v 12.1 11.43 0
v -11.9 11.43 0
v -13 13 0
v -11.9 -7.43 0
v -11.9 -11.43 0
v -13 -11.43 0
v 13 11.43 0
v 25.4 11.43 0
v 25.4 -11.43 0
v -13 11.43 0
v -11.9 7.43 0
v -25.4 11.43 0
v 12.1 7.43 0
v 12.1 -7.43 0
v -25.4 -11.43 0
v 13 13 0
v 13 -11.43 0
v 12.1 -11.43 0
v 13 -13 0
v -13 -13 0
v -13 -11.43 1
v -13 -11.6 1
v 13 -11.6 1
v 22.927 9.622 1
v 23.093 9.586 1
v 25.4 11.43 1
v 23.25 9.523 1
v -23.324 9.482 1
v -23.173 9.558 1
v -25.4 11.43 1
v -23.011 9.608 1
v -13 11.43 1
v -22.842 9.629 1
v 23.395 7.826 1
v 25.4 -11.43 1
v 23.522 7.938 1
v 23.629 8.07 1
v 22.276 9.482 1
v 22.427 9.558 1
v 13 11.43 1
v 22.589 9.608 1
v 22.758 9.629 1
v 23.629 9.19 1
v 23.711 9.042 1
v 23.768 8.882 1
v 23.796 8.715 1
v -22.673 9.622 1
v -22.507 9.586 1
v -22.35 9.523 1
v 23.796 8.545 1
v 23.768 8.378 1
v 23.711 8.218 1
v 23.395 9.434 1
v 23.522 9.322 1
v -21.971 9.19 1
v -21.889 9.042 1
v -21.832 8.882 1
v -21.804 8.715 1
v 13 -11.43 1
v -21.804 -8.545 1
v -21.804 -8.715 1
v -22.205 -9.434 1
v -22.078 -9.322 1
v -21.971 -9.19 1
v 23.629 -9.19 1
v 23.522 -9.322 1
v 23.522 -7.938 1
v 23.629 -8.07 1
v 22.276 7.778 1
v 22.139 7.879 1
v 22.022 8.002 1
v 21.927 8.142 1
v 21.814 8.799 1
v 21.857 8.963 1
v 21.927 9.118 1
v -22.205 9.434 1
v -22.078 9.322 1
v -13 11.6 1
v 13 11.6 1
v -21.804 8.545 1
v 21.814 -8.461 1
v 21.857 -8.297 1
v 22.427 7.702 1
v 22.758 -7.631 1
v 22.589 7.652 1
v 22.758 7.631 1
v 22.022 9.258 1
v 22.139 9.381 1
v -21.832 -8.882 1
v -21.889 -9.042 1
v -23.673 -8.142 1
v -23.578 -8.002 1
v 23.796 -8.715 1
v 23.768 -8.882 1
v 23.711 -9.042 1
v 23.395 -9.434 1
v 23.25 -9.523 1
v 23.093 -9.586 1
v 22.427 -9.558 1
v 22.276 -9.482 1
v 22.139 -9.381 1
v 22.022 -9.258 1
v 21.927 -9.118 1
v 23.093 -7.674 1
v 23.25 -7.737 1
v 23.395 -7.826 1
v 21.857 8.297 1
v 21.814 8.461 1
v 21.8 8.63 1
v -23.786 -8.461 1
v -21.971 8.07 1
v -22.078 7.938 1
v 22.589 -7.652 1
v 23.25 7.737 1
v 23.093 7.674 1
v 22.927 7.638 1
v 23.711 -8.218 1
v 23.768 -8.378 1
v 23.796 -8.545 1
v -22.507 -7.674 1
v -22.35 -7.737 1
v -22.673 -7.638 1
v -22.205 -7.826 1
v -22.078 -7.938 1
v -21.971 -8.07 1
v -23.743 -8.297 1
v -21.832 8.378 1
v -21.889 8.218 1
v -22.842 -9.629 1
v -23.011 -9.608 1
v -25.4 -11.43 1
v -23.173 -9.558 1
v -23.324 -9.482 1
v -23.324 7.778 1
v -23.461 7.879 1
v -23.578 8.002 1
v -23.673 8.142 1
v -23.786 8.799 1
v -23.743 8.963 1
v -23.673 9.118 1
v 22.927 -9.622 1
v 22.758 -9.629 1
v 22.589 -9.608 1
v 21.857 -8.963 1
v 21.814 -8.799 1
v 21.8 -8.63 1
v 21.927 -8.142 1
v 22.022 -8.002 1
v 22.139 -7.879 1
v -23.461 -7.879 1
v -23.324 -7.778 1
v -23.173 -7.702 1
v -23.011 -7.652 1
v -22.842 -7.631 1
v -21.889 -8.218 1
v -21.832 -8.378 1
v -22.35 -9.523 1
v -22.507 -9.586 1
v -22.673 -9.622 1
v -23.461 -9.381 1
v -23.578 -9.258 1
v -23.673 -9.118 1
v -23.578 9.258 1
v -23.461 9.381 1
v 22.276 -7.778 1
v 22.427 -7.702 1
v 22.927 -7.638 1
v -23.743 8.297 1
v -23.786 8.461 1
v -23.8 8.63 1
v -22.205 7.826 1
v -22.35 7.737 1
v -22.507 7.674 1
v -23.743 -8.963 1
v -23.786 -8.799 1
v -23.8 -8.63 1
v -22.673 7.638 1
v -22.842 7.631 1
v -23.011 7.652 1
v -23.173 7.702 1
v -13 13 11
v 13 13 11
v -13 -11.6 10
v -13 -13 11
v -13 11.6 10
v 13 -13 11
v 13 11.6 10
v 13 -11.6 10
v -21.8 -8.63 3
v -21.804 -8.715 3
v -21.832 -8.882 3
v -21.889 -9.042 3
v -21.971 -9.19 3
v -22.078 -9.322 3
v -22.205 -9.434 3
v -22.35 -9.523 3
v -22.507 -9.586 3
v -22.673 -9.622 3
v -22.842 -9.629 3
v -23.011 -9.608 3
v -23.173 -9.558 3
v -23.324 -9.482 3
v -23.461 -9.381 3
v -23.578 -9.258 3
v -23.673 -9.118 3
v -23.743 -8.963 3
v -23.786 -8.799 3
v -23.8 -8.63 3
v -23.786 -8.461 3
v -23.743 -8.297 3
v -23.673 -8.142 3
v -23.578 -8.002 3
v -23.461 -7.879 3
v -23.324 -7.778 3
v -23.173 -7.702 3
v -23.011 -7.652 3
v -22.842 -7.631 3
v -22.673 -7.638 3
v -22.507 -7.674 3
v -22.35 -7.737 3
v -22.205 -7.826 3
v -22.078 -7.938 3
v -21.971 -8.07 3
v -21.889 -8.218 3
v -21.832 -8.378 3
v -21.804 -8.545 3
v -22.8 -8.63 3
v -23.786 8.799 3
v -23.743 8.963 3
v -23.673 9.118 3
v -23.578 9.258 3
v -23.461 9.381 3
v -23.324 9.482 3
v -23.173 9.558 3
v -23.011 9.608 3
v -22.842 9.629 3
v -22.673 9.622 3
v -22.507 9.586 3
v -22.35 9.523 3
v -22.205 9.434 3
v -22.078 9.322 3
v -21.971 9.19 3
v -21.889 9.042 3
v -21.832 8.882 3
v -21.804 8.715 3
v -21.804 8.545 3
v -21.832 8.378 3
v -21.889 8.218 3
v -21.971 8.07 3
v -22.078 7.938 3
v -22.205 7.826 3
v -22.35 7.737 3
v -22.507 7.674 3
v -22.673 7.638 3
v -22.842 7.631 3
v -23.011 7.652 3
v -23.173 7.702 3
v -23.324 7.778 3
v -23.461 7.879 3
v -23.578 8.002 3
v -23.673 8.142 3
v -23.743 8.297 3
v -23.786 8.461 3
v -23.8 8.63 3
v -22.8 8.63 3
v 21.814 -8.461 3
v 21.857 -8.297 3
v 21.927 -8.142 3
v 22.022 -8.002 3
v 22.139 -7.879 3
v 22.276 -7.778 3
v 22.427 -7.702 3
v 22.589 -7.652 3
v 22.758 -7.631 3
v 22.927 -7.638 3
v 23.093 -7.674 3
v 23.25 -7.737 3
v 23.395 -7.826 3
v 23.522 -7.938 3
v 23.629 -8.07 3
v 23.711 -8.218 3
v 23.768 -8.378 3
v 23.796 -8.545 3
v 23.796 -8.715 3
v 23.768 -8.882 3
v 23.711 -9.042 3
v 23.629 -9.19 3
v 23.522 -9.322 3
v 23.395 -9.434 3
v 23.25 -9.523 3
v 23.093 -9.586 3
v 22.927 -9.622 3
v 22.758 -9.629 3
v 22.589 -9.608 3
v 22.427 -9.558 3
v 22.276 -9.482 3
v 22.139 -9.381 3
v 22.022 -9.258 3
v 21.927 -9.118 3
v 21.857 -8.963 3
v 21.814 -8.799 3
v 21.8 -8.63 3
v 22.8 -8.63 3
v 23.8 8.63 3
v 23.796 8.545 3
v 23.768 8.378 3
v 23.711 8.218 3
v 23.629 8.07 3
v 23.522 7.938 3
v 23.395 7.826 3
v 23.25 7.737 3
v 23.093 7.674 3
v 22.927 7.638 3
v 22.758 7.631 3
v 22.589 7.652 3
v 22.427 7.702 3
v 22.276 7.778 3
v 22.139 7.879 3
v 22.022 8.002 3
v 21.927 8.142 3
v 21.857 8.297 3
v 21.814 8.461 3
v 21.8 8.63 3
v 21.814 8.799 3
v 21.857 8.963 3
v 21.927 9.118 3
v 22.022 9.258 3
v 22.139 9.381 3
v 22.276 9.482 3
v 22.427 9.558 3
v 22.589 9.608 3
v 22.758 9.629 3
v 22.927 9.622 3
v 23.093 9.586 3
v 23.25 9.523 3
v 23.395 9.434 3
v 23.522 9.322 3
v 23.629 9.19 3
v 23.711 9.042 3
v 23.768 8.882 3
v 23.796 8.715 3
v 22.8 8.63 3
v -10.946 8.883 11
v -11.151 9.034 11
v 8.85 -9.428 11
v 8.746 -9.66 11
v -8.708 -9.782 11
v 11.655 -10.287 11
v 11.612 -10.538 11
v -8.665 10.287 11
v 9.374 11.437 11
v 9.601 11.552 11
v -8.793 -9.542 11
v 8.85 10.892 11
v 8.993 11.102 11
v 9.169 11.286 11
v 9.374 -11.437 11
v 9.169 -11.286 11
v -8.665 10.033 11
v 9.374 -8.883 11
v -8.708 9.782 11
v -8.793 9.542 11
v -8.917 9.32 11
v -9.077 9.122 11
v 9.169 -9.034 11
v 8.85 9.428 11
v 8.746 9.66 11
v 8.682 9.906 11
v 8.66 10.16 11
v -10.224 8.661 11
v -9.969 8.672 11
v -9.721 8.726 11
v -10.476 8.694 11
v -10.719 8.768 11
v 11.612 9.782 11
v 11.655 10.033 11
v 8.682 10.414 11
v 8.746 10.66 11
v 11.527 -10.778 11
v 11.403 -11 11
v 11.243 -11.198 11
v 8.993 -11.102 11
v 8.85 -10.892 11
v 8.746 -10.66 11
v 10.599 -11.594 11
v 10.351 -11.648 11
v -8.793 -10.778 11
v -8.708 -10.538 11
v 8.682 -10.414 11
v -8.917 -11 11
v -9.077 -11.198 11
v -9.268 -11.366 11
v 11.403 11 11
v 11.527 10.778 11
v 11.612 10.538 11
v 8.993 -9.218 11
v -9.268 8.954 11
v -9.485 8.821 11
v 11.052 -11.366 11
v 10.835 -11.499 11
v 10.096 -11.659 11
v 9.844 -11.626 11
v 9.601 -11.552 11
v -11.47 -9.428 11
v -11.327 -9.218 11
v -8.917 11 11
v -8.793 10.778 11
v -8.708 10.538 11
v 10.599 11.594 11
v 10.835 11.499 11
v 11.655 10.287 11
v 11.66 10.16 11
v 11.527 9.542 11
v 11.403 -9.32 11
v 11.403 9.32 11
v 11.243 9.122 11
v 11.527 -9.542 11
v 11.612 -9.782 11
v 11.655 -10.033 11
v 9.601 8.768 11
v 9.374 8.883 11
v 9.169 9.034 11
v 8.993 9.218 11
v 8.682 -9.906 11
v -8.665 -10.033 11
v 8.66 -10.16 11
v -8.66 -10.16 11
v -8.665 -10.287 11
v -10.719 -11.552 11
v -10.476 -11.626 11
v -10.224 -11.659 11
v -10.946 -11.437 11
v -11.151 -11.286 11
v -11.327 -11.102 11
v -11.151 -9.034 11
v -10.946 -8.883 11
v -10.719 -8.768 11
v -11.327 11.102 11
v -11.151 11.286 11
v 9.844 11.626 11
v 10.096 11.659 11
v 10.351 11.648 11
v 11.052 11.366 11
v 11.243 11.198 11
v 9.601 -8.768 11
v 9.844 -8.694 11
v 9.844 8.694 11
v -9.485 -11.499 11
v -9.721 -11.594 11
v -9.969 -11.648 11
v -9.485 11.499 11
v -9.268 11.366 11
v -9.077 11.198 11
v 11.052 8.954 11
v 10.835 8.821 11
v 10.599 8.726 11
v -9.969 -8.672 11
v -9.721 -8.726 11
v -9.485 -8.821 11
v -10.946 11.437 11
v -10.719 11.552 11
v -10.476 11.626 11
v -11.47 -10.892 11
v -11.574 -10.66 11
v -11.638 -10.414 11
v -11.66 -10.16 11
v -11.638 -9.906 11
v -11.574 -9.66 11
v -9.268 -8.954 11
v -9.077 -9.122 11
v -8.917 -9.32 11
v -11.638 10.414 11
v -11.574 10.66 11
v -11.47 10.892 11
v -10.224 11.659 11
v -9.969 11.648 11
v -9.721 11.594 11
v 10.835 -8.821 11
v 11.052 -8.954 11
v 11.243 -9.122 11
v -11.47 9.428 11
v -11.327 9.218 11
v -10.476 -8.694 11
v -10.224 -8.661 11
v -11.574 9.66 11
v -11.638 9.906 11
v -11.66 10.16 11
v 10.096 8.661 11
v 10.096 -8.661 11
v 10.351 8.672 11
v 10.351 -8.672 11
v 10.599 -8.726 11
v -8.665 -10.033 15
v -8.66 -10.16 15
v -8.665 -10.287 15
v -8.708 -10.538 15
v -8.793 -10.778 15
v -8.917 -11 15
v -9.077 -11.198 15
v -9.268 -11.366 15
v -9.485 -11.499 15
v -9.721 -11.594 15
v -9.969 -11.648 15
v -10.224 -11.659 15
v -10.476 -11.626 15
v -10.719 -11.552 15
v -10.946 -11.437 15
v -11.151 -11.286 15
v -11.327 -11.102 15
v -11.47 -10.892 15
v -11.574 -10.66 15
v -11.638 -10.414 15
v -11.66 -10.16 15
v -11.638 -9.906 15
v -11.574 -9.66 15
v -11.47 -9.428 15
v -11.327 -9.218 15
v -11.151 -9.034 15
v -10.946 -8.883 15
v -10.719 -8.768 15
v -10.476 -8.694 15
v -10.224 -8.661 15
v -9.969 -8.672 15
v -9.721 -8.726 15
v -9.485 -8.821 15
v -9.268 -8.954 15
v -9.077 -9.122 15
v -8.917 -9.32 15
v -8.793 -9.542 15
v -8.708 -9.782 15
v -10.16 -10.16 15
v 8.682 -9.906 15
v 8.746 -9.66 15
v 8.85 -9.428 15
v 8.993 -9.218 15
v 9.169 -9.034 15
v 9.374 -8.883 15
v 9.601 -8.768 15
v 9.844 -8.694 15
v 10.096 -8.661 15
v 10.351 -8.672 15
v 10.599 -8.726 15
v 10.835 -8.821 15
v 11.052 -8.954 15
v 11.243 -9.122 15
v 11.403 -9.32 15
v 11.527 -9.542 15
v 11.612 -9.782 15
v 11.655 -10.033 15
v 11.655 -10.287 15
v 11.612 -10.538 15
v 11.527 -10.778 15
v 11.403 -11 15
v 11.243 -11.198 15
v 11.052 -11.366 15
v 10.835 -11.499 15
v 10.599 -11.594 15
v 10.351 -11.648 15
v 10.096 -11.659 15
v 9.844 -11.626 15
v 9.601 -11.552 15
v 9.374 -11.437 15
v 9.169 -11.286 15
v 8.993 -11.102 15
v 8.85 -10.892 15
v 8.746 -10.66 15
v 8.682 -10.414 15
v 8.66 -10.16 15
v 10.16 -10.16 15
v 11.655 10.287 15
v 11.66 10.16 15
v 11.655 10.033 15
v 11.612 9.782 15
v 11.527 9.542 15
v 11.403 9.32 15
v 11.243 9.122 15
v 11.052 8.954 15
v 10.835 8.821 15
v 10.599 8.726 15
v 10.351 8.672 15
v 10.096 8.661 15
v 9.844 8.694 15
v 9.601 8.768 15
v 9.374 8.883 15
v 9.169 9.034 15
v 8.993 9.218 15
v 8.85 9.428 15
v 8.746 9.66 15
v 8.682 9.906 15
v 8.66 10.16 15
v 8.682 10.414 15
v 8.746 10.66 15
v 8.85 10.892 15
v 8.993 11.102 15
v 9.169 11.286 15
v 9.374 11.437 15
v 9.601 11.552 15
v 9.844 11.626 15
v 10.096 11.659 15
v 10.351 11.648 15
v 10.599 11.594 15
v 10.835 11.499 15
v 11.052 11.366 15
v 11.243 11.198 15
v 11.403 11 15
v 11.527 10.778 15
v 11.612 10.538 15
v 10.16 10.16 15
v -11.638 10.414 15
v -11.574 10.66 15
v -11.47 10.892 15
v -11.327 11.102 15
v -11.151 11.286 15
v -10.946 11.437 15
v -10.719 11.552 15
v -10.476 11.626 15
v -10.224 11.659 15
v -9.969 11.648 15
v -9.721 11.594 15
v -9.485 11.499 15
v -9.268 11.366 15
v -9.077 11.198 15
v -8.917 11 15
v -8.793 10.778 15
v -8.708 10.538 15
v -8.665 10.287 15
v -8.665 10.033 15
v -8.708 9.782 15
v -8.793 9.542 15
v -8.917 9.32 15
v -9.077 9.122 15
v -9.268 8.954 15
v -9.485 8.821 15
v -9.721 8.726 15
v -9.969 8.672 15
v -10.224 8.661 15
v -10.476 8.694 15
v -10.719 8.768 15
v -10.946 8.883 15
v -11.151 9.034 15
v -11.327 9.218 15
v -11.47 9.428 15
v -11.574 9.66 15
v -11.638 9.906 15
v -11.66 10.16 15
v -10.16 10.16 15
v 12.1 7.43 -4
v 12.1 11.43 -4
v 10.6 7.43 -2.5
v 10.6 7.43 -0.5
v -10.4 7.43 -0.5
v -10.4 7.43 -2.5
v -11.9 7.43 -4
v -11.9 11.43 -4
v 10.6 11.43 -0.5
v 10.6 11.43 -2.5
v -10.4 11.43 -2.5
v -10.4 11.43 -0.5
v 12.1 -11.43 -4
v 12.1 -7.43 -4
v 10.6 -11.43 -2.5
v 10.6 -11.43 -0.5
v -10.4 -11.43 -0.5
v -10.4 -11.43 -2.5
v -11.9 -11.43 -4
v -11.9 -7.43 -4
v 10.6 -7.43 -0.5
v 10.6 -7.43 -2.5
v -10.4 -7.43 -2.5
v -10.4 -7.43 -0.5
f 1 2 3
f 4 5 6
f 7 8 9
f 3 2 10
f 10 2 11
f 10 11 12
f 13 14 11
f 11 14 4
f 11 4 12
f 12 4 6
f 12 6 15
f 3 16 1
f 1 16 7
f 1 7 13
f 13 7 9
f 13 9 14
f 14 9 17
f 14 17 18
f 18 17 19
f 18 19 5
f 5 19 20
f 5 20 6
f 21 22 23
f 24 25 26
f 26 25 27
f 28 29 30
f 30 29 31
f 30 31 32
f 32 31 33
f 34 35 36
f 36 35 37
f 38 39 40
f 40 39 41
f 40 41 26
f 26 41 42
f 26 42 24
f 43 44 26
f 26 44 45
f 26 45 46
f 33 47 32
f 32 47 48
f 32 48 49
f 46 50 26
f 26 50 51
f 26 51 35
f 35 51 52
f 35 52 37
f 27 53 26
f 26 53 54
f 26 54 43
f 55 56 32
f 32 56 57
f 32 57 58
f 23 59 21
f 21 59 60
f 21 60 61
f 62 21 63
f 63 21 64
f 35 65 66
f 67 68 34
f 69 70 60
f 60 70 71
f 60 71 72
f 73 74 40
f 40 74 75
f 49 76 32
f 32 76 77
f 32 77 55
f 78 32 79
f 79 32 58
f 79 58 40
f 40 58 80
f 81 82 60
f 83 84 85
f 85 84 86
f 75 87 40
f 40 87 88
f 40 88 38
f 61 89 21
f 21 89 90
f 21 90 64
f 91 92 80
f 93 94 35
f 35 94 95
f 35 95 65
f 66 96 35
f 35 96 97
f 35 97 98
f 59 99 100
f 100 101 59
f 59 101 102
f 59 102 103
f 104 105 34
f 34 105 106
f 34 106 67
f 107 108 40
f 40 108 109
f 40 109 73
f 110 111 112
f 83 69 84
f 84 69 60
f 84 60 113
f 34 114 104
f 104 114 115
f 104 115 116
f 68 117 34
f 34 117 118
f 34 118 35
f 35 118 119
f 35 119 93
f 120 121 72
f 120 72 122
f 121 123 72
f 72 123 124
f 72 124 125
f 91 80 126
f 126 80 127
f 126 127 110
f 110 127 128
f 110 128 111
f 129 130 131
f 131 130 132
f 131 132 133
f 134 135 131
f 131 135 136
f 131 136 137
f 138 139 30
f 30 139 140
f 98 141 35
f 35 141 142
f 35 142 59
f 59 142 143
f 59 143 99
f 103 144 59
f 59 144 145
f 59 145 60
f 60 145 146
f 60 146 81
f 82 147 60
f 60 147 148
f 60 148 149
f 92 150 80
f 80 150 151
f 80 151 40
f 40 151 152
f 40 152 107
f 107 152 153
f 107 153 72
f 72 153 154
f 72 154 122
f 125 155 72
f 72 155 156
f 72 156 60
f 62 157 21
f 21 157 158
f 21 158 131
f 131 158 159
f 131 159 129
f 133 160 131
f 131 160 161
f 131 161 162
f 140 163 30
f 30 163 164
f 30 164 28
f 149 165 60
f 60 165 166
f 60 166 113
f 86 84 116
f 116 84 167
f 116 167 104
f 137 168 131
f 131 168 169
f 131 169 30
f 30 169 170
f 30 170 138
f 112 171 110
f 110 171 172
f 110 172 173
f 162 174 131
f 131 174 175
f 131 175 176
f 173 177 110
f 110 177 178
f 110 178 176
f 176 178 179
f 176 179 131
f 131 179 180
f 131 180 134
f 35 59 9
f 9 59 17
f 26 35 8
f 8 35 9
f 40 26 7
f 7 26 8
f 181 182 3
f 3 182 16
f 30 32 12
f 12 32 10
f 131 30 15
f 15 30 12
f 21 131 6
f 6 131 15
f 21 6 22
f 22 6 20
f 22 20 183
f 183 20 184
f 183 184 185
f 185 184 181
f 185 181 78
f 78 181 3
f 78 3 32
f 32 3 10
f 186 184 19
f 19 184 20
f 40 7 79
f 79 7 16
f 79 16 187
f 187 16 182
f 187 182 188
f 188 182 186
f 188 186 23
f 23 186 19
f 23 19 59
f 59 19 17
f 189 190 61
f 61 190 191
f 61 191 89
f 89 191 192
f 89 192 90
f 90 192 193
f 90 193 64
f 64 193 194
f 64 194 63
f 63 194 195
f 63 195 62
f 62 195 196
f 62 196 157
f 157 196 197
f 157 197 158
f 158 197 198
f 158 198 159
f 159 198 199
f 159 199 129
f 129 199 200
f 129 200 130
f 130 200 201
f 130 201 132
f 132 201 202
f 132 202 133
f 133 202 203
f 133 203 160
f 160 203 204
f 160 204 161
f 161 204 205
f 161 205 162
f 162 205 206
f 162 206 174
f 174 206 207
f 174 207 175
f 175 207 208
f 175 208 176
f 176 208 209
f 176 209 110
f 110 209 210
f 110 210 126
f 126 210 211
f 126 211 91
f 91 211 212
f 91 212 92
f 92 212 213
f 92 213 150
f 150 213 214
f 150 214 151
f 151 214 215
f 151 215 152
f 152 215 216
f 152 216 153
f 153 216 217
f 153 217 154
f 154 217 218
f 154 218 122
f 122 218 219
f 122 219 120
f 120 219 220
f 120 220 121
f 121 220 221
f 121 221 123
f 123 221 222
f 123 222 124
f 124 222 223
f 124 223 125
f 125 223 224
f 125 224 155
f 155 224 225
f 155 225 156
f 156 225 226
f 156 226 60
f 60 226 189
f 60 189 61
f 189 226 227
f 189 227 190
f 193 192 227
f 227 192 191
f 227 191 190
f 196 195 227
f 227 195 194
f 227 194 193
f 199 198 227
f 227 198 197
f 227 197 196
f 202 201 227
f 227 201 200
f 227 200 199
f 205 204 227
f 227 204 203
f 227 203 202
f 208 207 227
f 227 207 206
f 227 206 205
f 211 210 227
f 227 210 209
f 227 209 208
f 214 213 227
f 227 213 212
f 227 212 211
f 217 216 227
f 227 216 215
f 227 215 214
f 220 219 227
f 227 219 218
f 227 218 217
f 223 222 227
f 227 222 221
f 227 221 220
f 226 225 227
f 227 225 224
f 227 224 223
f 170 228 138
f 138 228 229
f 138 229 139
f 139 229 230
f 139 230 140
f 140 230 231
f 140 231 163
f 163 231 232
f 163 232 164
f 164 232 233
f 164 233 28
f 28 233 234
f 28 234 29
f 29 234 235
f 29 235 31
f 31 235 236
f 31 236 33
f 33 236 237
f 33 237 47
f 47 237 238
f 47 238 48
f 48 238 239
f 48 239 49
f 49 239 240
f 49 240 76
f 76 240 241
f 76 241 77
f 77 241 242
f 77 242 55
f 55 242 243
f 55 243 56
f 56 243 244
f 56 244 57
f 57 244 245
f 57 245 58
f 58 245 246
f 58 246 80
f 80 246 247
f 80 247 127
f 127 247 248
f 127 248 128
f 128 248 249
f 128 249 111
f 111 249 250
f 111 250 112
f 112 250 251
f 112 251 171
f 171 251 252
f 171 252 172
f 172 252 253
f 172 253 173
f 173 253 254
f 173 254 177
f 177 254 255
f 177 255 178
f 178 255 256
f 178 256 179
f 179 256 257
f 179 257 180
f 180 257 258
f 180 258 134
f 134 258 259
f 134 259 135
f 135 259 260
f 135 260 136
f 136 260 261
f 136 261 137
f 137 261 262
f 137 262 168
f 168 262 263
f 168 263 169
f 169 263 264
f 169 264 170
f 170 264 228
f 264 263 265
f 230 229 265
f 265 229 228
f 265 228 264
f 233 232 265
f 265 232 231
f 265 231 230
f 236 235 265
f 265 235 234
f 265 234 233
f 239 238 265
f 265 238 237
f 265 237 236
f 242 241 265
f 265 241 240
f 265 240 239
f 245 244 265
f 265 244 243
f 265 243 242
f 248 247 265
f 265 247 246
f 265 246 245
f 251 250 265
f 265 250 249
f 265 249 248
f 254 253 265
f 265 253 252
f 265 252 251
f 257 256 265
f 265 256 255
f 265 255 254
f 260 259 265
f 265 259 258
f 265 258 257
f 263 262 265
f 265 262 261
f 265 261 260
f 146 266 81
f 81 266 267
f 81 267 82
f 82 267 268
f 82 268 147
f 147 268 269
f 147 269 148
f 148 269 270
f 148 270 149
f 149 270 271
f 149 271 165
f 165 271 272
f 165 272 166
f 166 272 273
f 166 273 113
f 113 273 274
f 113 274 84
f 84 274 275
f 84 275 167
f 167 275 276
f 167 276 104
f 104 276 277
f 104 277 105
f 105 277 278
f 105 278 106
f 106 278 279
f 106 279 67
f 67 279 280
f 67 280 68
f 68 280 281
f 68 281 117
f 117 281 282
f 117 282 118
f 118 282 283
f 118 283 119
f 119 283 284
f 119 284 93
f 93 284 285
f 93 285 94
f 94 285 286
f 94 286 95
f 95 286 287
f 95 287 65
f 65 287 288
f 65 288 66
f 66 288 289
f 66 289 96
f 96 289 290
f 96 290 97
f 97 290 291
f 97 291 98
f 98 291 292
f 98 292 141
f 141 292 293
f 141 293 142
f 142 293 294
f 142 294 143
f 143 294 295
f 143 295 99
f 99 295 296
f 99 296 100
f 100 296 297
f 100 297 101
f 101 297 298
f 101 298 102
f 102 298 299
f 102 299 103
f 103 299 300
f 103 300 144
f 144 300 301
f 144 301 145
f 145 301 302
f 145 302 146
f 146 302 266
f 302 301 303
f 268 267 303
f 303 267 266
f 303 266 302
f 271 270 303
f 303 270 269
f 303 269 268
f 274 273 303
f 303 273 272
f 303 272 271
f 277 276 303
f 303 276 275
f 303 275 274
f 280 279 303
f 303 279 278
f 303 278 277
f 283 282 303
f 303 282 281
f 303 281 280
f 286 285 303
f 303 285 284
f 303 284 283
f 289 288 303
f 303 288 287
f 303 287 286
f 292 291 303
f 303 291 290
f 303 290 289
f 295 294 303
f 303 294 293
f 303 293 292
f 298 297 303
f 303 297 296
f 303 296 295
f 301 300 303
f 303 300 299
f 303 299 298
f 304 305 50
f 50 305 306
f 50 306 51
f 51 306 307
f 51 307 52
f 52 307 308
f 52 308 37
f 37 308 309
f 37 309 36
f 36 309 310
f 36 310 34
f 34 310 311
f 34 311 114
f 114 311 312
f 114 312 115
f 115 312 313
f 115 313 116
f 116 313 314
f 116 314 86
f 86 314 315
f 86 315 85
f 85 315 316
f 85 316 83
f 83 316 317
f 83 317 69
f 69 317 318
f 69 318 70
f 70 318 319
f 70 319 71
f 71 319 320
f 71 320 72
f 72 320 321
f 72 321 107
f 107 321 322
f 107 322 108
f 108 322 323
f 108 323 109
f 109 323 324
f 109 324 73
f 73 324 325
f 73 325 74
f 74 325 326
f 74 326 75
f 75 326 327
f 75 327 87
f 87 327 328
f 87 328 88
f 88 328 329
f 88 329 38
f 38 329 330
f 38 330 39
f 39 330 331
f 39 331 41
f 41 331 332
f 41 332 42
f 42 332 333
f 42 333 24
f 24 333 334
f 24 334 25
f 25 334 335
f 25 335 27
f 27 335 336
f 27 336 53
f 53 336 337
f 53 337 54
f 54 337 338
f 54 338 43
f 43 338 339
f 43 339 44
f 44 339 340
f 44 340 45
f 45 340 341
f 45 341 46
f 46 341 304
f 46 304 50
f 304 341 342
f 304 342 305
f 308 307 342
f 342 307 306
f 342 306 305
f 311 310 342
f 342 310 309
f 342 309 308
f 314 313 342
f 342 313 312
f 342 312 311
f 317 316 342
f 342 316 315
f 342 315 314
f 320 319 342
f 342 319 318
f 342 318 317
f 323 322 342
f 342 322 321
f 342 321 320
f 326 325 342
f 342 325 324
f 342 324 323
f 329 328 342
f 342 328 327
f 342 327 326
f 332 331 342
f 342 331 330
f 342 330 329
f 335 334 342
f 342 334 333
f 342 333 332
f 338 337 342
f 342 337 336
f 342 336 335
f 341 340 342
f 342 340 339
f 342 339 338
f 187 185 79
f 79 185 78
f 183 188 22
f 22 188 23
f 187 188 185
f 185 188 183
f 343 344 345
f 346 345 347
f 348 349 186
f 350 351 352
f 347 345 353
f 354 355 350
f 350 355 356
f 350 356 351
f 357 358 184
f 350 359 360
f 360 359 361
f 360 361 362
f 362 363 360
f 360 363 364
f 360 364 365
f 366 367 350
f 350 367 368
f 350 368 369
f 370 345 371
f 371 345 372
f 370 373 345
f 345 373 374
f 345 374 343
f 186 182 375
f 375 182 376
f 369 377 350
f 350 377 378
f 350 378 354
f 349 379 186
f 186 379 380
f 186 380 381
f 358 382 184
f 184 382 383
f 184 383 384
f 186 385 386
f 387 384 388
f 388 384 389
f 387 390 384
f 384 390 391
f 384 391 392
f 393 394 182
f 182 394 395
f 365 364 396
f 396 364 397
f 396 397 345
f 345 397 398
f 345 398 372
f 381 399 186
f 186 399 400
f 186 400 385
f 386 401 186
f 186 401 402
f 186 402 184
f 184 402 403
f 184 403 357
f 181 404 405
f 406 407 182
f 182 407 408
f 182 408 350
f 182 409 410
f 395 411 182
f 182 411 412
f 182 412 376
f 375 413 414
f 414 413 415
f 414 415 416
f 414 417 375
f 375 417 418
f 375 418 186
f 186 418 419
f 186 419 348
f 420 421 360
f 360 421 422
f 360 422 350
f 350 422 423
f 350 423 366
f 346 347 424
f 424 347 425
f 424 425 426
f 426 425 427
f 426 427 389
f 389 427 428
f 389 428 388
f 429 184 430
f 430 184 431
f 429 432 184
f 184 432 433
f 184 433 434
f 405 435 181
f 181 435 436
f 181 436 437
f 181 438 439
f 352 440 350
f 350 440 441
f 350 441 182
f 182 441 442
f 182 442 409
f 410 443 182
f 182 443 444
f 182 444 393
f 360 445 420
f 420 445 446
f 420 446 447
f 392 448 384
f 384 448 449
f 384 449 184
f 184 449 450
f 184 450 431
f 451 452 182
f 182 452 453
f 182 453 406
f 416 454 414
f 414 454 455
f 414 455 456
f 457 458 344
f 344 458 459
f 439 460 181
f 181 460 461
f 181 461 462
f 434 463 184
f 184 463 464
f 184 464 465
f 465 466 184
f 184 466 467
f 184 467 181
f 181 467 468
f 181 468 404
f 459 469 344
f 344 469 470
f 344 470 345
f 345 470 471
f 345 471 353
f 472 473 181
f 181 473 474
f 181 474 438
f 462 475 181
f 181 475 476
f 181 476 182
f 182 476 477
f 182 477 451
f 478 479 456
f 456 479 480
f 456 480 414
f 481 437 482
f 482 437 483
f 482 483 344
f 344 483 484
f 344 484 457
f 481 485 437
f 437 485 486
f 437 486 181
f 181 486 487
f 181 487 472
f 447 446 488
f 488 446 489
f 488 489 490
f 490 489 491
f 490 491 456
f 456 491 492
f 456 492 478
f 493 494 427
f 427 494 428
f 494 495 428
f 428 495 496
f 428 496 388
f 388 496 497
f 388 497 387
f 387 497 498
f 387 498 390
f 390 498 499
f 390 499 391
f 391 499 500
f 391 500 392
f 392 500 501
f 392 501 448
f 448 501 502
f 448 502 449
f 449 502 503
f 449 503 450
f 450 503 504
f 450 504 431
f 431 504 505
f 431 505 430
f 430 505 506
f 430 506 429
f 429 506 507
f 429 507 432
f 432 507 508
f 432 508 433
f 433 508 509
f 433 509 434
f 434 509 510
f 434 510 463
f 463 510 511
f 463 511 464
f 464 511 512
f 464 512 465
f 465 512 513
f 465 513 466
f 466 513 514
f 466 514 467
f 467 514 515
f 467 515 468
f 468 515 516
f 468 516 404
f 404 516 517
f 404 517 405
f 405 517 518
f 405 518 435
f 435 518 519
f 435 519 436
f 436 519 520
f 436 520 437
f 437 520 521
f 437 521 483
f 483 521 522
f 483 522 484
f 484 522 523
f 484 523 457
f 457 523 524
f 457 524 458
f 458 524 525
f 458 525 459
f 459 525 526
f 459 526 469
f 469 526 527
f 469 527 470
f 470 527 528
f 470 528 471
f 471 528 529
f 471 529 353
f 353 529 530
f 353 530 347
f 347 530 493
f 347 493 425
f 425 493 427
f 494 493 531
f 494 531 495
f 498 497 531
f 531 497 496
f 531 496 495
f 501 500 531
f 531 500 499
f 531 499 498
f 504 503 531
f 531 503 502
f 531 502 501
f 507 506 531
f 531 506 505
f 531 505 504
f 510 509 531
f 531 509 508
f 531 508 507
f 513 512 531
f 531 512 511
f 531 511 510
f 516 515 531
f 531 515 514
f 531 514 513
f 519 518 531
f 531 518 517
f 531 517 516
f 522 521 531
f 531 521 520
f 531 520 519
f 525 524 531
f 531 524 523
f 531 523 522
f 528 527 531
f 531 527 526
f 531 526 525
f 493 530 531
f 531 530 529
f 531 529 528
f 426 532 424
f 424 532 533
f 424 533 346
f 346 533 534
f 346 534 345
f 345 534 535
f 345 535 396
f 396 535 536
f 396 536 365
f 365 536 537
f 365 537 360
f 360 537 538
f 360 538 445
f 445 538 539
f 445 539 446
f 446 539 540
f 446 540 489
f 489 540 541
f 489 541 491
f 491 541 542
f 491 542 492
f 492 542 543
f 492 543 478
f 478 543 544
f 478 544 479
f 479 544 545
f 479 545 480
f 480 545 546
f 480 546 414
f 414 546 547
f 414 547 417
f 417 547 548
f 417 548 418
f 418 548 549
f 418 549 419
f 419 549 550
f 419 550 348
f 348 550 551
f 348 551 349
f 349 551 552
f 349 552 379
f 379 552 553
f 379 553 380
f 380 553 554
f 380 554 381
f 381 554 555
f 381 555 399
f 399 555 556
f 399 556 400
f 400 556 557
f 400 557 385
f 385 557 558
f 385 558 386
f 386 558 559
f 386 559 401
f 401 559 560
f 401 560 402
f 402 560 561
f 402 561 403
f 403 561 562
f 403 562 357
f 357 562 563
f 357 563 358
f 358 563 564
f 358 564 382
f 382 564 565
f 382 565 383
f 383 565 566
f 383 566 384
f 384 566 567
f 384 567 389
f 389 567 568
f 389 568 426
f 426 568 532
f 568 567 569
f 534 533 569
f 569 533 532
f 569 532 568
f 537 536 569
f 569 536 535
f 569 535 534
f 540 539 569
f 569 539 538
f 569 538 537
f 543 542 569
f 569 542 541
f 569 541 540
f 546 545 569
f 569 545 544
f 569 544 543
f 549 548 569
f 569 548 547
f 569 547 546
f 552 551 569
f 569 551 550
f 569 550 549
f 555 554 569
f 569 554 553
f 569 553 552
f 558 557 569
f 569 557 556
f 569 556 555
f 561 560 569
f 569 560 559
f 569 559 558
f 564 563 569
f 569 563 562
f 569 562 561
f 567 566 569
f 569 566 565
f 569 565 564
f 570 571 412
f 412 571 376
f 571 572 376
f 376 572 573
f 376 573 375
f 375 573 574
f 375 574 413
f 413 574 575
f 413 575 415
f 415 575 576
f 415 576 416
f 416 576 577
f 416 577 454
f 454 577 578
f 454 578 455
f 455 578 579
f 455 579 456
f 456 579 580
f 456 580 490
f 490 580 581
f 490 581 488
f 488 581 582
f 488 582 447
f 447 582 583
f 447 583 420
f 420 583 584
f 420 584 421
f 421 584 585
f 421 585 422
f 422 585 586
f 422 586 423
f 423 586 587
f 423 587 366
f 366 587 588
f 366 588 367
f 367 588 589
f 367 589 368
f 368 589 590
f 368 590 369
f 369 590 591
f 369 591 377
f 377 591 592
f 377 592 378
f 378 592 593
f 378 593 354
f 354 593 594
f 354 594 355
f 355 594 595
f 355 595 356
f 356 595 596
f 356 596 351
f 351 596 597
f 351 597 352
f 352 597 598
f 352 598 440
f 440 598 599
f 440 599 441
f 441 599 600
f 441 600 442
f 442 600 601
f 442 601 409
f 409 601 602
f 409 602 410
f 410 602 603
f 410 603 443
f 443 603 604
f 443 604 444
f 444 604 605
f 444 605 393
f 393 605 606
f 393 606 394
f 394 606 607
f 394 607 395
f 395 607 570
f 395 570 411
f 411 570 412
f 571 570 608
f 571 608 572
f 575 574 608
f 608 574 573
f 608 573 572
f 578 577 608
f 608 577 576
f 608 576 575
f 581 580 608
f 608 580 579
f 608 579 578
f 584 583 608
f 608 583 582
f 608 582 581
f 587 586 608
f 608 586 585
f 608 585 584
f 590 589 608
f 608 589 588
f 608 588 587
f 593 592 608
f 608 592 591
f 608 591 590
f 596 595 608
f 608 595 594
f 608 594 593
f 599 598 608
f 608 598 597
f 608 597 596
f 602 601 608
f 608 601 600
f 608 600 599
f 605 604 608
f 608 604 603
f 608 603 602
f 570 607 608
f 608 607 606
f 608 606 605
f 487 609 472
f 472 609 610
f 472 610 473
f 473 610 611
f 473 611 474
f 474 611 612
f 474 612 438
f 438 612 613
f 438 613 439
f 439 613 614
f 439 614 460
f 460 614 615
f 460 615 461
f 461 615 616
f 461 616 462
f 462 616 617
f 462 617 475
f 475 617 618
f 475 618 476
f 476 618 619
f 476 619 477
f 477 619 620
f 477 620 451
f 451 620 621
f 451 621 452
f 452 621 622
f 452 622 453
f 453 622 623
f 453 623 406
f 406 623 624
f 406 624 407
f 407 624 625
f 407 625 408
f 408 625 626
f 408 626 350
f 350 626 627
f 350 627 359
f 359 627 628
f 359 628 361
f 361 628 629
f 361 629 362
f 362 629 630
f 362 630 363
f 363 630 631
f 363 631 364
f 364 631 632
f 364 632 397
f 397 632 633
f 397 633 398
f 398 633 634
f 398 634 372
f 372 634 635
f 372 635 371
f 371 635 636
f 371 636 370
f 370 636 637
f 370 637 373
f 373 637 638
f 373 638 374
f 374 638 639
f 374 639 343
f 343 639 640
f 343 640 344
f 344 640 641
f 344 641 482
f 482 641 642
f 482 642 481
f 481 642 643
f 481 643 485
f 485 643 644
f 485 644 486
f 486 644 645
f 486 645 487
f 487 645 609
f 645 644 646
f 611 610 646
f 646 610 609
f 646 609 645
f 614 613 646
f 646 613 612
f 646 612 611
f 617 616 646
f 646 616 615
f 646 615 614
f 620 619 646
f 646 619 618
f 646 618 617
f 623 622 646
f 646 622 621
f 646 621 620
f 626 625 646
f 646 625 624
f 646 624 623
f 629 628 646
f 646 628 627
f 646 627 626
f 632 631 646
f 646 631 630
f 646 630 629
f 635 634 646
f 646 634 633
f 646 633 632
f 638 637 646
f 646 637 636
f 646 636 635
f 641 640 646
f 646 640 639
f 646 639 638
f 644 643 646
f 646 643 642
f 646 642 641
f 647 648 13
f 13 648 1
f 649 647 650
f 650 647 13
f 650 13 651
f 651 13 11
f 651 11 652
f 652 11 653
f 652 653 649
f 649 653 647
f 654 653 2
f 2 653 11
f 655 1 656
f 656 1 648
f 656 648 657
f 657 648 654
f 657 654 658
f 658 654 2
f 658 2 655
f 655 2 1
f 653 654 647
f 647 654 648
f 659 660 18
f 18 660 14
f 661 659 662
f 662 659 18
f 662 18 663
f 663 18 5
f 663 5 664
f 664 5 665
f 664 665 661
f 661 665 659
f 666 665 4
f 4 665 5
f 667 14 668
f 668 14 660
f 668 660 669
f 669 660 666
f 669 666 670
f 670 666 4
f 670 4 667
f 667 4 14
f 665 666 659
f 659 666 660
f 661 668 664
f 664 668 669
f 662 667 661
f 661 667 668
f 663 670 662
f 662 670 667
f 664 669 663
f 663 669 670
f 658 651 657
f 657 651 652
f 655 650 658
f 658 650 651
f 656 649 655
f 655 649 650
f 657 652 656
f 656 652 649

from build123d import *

# Parameters (mm, degrees)
EXTRUDE_1_DEPTH     = 1
SKETCH_3_R          = 1
EXTRUDE_2_DEPTH     = 2
SKETCH_9_W          = 26
SKETCH_9_H          = 1.4
EXTRUDE_4_DEPTH     = 9
SKETCH_10_W         = 26
SKETCH_10_H         = 26
EXTRUDE_5_DEPTH     = 1
SKETCH_11_R         = 1.5
EXTRUDE_6_DEPTH     = 4
SKETCH_6_W          = 24
SKETCH_6_H          = 4
EXTRUDE_7_DEPTH     = 4
SKETCH_12_W         = 21
SKETCH_12_H         = 2
CUT_EXTRUDE_3_DEPTH = 25


with BuildPart() as part:
    # 草图1 → 凸台-拉伸1 (new body)
    with BuildSketch(Plane.XY):
        Polygon((-13, -11.43), (-13, -13), (13, -13), (13, -11.43), (25.4, -11.43), (25.4, 11.43), (13, 11.43), (13, 13), (-13, 13), (-13, 11.43), (-25.4, 11.43), (-25.4, -11.43), align=None)
    extrude(amount=EXTRUDE_1_DEPTH)

    # 草图3 → 凸台-拉伸2 (add)
    with BuildSketch(Plane.XY.offset(1)):
        with Locations(Location((-22.8, -8.63, 0), (0, 0, 180))):
            Circle(SKETCH_3_R)
        with Locations(Location((-22.8, 8.63, 0), (0, 0, 180))):
            Circle(SKETCH_3_R)
        with Locations(Location((22.8, -8.63, 0), (0, 0, 180))):
            Circle(SKETCH_3_R)
        with Locations(Location((22.8, 8.63, 0), (0, 0, 180))):
            Circle(SKETCH_3_R)
    extrude(amount=EXTRUDE_2_DEPTH)

    # 草图9 → 凸台-拉伸4 (add)
    with BuildSketch(Plane.XY.offset(1)):
        with Locations((0, 12.3)):
            Rectangle(SKETCH_9_W, SKETCH_9_H)
        with Locations((0, -12.3)):
            Rectangle(SKETCH_9_W, SKETCH_9_H)
    extrude(amount=EXTRUDE_4_DEPTH)

    # 草图10 → 凸台-拉伸5 (add)
    with BuildSketch(Plane.XY.offset(10)):
        Rectangle(SKETCH_10_W, SKETCH_10_H)
    extrude(amount=EXTRUDE_5_DEPTH)

    # 草图11 → 凸台-拉伸6 (add)
    with BuildSketch(Plane.XY.offset(11)):
        with Locations((-10.16, -10.16)):
            Circle(SKETCH_11_R)
        with Locations(Location((10.16, -10.16, 0), (0, 0, 180))):
            Circle(SKETCH_11_R)
        with Locations((10.16, 10.16)):
            Circle(SKETCH_11_R)
        with Locations(Location((-10.16, 10.16, 0), (0, 0, 180))):
            Circle(SKETCH_11_R)
    extrude(amount=EXTRUDE_6_DEPTH)

    # 草图6 → 凸台-拉伸7 (add)
    with BuildSketch(Plane(origin=(0, 0, 0), x_dir=(-1, 0, 0), z_dir=(0, 0, -1))):
        with Locations((-0.1, 9.43)):
            Rectangle(SKETCH_6_W, SKETCH_6_H)
        with Locations((-0.1, -9.43)):
            Rectangle(SKETCH_6_W, SKETCH_6_H)
    extrude(amount=EXTRUDE_7_DEPTH)

    # 草图12 → 切除-拉伸3 (cut)
    with BuildSketch(Plane(origin=(0, -11.43, 0), x_dir=(-1, 0, 0), z_dir=(0, -1, 0))):
        with Locations((-0.1, 1.5)):
            Rectangle(SKETCH_12_W, SKETCH_12_H)
    extrude(amount=-CUT_EXTRUDE_3_DEPTH, mode=Mode.SUBTRACT)


solid = part.part
